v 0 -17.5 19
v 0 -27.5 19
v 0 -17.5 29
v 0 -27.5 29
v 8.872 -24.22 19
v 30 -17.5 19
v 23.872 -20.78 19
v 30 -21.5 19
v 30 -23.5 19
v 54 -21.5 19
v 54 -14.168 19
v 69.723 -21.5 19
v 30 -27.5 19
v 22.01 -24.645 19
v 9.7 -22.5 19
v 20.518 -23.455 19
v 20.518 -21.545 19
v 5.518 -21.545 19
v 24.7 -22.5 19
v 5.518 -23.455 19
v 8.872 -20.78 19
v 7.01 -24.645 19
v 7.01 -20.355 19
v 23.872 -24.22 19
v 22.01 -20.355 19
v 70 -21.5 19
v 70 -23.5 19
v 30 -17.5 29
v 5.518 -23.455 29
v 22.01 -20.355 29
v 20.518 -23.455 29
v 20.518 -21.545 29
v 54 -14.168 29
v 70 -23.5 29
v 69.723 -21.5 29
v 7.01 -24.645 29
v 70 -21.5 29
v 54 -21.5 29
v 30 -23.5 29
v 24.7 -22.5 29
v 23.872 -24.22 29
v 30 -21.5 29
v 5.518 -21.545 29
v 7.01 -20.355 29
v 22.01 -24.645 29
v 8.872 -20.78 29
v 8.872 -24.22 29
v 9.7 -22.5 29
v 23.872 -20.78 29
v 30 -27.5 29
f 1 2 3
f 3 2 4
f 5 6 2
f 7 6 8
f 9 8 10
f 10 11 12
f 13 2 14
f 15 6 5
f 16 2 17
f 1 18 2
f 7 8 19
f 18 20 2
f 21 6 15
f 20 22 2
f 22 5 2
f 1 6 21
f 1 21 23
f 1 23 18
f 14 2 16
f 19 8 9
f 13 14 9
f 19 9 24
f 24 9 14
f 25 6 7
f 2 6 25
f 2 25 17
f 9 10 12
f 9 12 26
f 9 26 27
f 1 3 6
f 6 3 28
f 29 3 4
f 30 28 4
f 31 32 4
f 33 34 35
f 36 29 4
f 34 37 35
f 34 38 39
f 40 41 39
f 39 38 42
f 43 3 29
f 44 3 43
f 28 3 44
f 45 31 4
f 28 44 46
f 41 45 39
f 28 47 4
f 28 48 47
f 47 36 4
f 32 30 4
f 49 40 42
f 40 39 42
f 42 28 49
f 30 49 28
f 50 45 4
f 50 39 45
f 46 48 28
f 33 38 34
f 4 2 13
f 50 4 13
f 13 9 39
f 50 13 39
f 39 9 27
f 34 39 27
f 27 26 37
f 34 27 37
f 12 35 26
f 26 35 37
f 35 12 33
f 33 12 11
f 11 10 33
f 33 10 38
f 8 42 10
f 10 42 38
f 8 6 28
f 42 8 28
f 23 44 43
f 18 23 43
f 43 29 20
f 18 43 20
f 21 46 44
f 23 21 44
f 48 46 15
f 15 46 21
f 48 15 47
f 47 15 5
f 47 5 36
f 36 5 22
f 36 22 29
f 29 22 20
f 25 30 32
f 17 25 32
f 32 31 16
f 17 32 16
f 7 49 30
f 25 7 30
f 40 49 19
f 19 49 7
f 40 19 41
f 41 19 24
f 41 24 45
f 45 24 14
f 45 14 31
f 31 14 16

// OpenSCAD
dist_cent=45;

rotate([90,0,0])
difference(){

union(){


// Soporte clip (tornillos)
translate([0,-11+30,45/2-10/2])
cube([30,10,10]);

translate([10,0,0]){


// Brazo clip
translate([30-10,-11+30,45/2-10/2+5-1])
cube([30+10,10,2]);

translate([-1,0,0])
difference(){
// Clip
translate([30+30-10-5,-11+30,45/2-10/2+5-1-10])
cube([30,10,10]);


translate([30+30-10,-11+30-1,45/2-10/2+5-1-5])
rotate([0,65,0])
translate([0,0,-10])
cube([100,15,50]);
}
}
}


union(){
//agujeros tornillos
translate([15/2,50,dist_cent/2])
rotate([90,0,0])
cylinder(r=2.2,h=500);
translate([30-15/2,50,dist_cent/2])
rotate([90,0,0])
cylinder(r=2.2,h=500);
}
}
